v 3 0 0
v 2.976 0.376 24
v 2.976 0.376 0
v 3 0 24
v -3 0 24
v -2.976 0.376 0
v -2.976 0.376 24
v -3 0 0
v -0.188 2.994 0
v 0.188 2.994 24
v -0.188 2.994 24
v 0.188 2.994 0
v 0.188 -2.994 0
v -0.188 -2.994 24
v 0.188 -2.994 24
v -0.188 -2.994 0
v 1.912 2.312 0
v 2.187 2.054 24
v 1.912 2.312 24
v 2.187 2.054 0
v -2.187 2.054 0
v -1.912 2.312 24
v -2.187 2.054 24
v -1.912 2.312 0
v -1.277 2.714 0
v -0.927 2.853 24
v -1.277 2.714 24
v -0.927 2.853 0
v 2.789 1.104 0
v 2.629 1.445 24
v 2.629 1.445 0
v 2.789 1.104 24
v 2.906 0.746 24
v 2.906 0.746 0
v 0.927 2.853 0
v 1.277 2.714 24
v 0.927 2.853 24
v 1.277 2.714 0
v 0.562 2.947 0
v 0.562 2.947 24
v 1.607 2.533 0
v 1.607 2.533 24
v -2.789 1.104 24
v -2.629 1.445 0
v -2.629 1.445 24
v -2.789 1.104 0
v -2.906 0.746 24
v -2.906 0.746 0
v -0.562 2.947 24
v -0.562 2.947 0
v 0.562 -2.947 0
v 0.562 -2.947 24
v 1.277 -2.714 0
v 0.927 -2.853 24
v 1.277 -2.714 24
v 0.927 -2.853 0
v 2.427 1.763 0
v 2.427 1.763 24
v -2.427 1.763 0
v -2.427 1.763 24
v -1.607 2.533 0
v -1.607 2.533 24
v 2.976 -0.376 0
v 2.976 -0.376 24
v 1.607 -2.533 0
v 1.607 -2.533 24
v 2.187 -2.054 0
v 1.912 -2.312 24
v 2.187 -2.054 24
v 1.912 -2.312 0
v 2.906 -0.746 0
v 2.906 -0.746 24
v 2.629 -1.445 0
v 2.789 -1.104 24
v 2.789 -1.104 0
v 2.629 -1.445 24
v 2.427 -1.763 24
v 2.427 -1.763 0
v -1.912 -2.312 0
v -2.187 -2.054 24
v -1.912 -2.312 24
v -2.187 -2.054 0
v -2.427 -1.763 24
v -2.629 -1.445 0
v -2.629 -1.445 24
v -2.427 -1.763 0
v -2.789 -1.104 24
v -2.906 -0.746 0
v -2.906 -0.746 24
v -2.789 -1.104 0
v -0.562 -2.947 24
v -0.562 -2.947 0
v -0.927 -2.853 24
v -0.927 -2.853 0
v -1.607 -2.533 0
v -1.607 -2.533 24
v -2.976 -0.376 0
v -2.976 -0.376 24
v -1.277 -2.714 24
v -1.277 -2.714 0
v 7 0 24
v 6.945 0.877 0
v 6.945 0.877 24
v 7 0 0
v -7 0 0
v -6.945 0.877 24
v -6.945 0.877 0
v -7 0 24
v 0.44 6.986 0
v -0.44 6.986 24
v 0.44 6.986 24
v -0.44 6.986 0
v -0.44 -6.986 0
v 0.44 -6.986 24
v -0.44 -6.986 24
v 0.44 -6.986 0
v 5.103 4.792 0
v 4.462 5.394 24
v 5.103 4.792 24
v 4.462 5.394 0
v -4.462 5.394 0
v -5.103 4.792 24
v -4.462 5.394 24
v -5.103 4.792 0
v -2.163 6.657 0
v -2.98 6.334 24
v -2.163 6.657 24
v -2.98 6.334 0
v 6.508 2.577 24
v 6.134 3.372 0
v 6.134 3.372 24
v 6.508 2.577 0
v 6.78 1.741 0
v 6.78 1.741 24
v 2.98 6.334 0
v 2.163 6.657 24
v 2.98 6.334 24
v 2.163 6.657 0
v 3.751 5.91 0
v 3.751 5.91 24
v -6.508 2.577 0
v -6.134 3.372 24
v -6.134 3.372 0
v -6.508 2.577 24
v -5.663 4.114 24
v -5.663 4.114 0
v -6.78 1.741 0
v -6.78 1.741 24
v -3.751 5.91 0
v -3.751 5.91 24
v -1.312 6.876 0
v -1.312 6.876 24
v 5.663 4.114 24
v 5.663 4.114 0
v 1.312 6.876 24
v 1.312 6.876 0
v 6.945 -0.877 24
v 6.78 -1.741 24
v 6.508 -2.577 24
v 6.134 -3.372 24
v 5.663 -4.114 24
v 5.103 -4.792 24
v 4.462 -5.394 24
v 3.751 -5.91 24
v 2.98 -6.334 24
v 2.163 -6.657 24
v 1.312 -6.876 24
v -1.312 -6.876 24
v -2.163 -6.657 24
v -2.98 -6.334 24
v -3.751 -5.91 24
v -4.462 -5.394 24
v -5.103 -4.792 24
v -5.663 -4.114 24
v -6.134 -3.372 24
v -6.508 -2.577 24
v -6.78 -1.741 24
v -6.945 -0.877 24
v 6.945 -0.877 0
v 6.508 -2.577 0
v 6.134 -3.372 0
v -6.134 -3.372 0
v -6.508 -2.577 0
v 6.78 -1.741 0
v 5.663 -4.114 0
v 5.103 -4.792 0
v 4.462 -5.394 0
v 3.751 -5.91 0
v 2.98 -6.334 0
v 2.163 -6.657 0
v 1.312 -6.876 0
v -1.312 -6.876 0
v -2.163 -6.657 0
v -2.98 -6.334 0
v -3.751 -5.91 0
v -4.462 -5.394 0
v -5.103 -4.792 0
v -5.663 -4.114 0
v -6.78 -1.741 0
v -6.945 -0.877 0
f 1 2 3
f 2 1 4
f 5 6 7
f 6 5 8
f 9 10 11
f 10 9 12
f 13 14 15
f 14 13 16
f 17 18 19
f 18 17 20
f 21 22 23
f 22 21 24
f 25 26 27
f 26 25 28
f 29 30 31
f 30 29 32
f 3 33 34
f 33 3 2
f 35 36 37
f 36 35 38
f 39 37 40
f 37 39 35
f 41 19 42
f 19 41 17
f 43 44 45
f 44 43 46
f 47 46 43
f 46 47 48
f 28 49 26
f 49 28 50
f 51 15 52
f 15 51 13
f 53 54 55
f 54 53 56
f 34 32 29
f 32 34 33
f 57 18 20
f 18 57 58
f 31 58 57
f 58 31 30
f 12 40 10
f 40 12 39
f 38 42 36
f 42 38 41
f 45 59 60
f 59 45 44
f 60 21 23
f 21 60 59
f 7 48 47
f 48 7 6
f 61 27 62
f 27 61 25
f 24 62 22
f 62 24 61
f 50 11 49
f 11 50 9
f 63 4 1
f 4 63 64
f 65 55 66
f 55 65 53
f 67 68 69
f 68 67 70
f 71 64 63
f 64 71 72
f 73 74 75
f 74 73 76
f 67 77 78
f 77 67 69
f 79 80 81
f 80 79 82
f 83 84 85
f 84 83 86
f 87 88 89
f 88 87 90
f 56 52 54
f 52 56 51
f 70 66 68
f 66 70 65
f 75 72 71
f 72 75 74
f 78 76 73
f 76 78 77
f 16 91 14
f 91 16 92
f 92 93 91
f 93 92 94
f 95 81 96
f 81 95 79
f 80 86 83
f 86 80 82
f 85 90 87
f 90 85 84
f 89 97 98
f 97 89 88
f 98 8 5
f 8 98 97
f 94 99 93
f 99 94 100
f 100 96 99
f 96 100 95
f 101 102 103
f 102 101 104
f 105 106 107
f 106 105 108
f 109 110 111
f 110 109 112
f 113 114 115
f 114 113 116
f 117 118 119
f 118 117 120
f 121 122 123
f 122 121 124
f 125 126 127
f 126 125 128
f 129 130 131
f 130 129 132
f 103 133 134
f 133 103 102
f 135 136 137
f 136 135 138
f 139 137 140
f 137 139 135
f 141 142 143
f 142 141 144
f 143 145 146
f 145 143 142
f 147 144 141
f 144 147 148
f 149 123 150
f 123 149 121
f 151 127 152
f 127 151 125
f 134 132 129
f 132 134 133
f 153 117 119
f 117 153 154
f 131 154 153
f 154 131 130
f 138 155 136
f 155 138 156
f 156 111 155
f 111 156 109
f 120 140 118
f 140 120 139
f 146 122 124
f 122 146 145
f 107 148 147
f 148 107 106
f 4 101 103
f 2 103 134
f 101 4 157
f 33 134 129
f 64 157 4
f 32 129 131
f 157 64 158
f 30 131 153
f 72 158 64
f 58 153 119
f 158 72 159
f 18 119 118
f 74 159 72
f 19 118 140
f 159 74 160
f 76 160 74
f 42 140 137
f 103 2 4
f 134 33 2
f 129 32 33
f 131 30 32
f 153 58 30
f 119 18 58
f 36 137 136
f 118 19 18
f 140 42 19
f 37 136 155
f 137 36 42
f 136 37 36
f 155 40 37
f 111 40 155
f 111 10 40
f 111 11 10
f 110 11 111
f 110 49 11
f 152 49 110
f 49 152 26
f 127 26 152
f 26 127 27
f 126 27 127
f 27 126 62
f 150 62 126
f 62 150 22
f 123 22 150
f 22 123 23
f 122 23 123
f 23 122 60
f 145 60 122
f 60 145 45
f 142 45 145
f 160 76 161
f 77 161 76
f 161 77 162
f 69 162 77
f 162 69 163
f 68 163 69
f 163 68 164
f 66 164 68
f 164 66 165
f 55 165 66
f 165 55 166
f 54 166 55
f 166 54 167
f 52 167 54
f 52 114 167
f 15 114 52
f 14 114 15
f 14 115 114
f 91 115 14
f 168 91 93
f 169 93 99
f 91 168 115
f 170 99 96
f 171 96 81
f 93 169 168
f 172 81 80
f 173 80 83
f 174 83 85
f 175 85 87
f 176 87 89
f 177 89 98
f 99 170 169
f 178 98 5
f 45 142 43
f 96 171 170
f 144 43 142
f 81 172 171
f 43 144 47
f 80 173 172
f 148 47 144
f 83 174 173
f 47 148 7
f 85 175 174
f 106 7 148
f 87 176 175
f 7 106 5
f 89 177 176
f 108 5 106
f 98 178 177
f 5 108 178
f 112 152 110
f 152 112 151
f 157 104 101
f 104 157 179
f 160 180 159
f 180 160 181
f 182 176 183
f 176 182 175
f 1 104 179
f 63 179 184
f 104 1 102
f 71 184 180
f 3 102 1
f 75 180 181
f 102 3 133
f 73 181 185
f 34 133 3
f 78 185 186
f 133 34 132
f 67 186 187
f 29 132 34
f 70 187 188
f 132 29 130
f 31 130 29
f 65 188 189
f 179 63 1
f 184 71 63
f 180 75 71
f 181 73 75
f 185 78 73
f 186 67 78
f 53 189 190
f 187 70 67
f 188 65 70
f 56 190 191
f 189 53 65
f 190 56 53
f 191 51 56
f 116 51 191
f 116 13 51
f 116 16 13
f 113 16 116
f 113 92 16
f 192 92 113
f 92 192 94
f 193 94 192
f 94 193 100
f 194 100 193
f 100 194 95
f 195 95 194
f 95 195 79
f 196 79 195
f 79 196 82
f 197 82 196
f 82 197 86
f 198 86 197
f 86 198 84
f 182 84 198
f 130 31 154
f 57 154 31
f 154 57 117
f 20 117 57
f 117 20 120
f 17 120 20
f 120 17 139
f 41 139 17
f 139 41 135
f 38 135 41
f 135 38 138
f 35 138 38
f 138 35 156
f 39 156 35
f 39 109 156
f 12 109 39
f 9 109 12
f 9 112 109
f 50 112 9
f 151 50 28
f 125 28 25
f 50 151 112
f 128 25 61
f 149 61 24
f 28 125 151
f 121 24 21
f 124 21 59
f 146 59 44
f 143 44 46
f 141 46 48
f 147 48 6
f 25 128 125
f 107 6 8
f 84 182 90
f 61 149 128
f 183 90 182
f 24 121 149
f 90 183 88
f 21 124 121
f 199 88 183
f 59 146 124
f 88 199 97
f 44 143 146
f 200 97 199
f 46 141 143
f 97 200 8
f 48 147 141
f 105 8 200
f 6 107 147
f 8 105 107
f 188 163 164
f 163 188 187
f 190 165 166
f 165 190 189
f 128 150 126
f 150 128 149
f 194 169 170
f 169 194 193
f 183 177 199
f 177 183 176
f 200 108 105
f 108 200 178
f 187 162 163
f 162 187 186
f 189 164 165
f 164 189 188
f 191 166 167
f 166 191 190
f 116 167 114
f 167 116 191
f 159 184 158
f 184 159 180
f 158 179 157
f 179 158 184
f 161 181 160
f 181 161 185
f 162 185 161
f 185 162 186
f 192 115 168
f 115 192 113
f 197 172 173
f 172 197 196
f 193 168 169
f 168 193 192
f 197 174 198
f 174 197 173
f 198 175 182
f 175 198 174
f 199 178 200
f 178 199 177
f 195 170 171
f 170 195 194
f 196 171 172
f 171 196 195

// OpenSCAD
$fn = 50;


difference() {
	union() {
		translate(v = [0, 0, 0]) {
			rotate(a = [0, 0, 0]) {
				cylinder(h = 24, r = 7.0000000000);
			}
		}
	}
	union() {
		translate(v = [0.0000000000, 0.0000000000, 0]) {
			rotate(a = [0, 0, 0]) {
				translate(v = [0, 0, -50]) {
					rotate(a = [0, 0, 0]) {
						cylinder(h = 100, r = 3.0000000000);
					}
				}
			}
		}
		translate(v = [0.0000000000, 0.0000000000, 0]) {
			rotate(a = [0, 0, 0]) {
				translate(v = [0, 0, -50]) {
					rotate(a = [0, 0, 0]) {
						cylinder(h = 100, r = 1.5000000000);
					}
				}
			}
		}
	}
}
